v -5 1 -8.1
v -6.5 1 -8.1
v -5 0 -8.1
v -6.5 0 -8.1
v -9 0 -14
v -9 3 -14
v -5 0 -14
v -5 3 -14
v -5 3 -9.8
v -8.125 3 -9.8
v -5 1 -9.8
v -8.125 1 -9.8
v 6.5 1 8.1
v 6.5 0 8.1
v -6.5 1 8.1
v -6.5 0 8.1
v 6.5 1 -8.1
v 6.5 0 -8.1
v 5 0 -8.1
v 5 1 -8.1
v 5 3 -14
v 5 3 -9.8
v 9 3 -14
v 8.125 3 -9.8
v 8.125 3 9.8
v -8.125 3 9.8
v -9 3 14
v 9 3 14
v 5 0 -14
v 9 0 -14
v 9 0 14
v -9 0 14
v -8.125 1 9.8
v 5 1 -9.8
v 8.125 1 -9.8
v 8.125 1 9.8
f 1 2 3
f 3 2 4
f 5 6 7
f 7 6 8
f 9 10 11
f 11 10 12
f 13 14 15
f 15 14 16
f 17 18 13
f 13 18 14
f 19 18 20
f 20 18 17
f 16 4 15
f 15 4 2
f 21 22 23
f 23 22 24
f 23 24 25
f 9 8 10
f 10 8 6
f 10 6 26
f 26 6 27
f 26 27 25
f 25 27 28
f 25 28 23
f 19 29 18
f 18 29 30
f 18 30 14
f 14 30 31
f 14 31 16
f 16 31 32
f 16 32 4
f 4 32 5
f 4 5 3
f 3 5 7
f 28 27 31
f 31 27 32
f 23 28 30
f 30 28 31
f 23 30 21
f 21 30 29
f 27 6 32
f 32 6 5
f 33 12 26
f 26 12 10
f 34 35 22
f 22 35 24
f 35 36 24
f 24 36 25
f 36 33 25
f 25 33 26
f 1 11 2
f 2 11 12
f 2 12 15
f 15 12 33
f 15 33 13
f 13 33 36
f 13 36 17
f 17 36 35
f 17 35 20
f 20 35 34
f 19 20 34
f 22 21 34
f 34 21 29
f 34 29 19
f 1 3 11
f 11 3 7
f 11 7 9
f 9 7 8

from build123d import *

# Parameters (mm, degrees)
SKETCH1_W           = 18
SKETCH1_H           = 28
SKETCH1_W_2         = 13
SKETCH1_H_2         = 16.2
BOSS_EXTRUDE1_DEPTH = 3
SKETCH1_3_W         = 13
SKETCH1_3_H         = 16.2
CUT_EXTRUDE1_DEPTH  = 17.911534525
SKETCH2_W           = 16.25
SKETCH2_H           = 19.6
CUT_EXTRUDE2_DEPTH  = 2
SKETCH4_W           = 10
SKETCH4_H           = 9
CUT_EXTRUDE3_DEPTH  = 17.911534525


with BuildPart() as part:
    # Sketch1 → Boss-Extrude1 (new body)
    # profile 1 of 2: a face of its own
    with BuildSketch(Plane(origin=(0, 0, 0), x_dir=(1, 0, 0), z_dir=(0, 1, 0))):
        Rectangle(SKETCH1_W, SKETCH1_H)
        Rectangle(SKETCH1_W_2, SKETCH1_H_2, mode=Mode.SUBTRACT)
    # profile 2 of 2: a face of its own
    with BuildSketch(Plane(origin=(0, 0, 0), x_dir=(1, 0, 0), z_dir=(0, 1, 0))):
        Rectangle(SKETCH1_W_2, SKETCH1_H_2)
    extrude(amount=BOSS_EXTRUDE1_DEPTH)

    # Sketch1<3> → Cut-Extrude1 (cut, through all)
    with BuildSketch(Plane(origin=(0, 0, 0), x_dir=(1, 0, 0), z_dir=(0, 1, 0))):
        Rectangle(SKETCH1_3_W, SKETCH1_3_H)
    extrude(amount=CUT_EXTRUDE1_DEPTH, mode=Mode.SUBTRACT)

    # Sketch2 → Cut-Extrude2 (cut)
    with BuildSketch(Plane(origin=(0, 3, 0), x_dir=(1, 0, 0), z_dir=(0, 1, 0))):
        Rectangle(SKETCH2_W, SKETCH2_H)
    extrude(amount=-CUT_EXTRUDE2_DEPTH, mode=Mode.SUBTRACT)

    # Sketch4 → Cut-Extrude3 (cut, through all)
    with BuildSketch(Plane(origin=(0, 3, 0), x_dir=(1, 0, 0), z_dir=(0, 1, 0))):
        with Locations((0, 9.8)):
            Rectangle(SKETCH4_W, SKETCH4_H)
    extrude(amount=-CUT_EXTRUDE3_DEPTH, mode=Mode.SUBTRACT)


solid = part.part
